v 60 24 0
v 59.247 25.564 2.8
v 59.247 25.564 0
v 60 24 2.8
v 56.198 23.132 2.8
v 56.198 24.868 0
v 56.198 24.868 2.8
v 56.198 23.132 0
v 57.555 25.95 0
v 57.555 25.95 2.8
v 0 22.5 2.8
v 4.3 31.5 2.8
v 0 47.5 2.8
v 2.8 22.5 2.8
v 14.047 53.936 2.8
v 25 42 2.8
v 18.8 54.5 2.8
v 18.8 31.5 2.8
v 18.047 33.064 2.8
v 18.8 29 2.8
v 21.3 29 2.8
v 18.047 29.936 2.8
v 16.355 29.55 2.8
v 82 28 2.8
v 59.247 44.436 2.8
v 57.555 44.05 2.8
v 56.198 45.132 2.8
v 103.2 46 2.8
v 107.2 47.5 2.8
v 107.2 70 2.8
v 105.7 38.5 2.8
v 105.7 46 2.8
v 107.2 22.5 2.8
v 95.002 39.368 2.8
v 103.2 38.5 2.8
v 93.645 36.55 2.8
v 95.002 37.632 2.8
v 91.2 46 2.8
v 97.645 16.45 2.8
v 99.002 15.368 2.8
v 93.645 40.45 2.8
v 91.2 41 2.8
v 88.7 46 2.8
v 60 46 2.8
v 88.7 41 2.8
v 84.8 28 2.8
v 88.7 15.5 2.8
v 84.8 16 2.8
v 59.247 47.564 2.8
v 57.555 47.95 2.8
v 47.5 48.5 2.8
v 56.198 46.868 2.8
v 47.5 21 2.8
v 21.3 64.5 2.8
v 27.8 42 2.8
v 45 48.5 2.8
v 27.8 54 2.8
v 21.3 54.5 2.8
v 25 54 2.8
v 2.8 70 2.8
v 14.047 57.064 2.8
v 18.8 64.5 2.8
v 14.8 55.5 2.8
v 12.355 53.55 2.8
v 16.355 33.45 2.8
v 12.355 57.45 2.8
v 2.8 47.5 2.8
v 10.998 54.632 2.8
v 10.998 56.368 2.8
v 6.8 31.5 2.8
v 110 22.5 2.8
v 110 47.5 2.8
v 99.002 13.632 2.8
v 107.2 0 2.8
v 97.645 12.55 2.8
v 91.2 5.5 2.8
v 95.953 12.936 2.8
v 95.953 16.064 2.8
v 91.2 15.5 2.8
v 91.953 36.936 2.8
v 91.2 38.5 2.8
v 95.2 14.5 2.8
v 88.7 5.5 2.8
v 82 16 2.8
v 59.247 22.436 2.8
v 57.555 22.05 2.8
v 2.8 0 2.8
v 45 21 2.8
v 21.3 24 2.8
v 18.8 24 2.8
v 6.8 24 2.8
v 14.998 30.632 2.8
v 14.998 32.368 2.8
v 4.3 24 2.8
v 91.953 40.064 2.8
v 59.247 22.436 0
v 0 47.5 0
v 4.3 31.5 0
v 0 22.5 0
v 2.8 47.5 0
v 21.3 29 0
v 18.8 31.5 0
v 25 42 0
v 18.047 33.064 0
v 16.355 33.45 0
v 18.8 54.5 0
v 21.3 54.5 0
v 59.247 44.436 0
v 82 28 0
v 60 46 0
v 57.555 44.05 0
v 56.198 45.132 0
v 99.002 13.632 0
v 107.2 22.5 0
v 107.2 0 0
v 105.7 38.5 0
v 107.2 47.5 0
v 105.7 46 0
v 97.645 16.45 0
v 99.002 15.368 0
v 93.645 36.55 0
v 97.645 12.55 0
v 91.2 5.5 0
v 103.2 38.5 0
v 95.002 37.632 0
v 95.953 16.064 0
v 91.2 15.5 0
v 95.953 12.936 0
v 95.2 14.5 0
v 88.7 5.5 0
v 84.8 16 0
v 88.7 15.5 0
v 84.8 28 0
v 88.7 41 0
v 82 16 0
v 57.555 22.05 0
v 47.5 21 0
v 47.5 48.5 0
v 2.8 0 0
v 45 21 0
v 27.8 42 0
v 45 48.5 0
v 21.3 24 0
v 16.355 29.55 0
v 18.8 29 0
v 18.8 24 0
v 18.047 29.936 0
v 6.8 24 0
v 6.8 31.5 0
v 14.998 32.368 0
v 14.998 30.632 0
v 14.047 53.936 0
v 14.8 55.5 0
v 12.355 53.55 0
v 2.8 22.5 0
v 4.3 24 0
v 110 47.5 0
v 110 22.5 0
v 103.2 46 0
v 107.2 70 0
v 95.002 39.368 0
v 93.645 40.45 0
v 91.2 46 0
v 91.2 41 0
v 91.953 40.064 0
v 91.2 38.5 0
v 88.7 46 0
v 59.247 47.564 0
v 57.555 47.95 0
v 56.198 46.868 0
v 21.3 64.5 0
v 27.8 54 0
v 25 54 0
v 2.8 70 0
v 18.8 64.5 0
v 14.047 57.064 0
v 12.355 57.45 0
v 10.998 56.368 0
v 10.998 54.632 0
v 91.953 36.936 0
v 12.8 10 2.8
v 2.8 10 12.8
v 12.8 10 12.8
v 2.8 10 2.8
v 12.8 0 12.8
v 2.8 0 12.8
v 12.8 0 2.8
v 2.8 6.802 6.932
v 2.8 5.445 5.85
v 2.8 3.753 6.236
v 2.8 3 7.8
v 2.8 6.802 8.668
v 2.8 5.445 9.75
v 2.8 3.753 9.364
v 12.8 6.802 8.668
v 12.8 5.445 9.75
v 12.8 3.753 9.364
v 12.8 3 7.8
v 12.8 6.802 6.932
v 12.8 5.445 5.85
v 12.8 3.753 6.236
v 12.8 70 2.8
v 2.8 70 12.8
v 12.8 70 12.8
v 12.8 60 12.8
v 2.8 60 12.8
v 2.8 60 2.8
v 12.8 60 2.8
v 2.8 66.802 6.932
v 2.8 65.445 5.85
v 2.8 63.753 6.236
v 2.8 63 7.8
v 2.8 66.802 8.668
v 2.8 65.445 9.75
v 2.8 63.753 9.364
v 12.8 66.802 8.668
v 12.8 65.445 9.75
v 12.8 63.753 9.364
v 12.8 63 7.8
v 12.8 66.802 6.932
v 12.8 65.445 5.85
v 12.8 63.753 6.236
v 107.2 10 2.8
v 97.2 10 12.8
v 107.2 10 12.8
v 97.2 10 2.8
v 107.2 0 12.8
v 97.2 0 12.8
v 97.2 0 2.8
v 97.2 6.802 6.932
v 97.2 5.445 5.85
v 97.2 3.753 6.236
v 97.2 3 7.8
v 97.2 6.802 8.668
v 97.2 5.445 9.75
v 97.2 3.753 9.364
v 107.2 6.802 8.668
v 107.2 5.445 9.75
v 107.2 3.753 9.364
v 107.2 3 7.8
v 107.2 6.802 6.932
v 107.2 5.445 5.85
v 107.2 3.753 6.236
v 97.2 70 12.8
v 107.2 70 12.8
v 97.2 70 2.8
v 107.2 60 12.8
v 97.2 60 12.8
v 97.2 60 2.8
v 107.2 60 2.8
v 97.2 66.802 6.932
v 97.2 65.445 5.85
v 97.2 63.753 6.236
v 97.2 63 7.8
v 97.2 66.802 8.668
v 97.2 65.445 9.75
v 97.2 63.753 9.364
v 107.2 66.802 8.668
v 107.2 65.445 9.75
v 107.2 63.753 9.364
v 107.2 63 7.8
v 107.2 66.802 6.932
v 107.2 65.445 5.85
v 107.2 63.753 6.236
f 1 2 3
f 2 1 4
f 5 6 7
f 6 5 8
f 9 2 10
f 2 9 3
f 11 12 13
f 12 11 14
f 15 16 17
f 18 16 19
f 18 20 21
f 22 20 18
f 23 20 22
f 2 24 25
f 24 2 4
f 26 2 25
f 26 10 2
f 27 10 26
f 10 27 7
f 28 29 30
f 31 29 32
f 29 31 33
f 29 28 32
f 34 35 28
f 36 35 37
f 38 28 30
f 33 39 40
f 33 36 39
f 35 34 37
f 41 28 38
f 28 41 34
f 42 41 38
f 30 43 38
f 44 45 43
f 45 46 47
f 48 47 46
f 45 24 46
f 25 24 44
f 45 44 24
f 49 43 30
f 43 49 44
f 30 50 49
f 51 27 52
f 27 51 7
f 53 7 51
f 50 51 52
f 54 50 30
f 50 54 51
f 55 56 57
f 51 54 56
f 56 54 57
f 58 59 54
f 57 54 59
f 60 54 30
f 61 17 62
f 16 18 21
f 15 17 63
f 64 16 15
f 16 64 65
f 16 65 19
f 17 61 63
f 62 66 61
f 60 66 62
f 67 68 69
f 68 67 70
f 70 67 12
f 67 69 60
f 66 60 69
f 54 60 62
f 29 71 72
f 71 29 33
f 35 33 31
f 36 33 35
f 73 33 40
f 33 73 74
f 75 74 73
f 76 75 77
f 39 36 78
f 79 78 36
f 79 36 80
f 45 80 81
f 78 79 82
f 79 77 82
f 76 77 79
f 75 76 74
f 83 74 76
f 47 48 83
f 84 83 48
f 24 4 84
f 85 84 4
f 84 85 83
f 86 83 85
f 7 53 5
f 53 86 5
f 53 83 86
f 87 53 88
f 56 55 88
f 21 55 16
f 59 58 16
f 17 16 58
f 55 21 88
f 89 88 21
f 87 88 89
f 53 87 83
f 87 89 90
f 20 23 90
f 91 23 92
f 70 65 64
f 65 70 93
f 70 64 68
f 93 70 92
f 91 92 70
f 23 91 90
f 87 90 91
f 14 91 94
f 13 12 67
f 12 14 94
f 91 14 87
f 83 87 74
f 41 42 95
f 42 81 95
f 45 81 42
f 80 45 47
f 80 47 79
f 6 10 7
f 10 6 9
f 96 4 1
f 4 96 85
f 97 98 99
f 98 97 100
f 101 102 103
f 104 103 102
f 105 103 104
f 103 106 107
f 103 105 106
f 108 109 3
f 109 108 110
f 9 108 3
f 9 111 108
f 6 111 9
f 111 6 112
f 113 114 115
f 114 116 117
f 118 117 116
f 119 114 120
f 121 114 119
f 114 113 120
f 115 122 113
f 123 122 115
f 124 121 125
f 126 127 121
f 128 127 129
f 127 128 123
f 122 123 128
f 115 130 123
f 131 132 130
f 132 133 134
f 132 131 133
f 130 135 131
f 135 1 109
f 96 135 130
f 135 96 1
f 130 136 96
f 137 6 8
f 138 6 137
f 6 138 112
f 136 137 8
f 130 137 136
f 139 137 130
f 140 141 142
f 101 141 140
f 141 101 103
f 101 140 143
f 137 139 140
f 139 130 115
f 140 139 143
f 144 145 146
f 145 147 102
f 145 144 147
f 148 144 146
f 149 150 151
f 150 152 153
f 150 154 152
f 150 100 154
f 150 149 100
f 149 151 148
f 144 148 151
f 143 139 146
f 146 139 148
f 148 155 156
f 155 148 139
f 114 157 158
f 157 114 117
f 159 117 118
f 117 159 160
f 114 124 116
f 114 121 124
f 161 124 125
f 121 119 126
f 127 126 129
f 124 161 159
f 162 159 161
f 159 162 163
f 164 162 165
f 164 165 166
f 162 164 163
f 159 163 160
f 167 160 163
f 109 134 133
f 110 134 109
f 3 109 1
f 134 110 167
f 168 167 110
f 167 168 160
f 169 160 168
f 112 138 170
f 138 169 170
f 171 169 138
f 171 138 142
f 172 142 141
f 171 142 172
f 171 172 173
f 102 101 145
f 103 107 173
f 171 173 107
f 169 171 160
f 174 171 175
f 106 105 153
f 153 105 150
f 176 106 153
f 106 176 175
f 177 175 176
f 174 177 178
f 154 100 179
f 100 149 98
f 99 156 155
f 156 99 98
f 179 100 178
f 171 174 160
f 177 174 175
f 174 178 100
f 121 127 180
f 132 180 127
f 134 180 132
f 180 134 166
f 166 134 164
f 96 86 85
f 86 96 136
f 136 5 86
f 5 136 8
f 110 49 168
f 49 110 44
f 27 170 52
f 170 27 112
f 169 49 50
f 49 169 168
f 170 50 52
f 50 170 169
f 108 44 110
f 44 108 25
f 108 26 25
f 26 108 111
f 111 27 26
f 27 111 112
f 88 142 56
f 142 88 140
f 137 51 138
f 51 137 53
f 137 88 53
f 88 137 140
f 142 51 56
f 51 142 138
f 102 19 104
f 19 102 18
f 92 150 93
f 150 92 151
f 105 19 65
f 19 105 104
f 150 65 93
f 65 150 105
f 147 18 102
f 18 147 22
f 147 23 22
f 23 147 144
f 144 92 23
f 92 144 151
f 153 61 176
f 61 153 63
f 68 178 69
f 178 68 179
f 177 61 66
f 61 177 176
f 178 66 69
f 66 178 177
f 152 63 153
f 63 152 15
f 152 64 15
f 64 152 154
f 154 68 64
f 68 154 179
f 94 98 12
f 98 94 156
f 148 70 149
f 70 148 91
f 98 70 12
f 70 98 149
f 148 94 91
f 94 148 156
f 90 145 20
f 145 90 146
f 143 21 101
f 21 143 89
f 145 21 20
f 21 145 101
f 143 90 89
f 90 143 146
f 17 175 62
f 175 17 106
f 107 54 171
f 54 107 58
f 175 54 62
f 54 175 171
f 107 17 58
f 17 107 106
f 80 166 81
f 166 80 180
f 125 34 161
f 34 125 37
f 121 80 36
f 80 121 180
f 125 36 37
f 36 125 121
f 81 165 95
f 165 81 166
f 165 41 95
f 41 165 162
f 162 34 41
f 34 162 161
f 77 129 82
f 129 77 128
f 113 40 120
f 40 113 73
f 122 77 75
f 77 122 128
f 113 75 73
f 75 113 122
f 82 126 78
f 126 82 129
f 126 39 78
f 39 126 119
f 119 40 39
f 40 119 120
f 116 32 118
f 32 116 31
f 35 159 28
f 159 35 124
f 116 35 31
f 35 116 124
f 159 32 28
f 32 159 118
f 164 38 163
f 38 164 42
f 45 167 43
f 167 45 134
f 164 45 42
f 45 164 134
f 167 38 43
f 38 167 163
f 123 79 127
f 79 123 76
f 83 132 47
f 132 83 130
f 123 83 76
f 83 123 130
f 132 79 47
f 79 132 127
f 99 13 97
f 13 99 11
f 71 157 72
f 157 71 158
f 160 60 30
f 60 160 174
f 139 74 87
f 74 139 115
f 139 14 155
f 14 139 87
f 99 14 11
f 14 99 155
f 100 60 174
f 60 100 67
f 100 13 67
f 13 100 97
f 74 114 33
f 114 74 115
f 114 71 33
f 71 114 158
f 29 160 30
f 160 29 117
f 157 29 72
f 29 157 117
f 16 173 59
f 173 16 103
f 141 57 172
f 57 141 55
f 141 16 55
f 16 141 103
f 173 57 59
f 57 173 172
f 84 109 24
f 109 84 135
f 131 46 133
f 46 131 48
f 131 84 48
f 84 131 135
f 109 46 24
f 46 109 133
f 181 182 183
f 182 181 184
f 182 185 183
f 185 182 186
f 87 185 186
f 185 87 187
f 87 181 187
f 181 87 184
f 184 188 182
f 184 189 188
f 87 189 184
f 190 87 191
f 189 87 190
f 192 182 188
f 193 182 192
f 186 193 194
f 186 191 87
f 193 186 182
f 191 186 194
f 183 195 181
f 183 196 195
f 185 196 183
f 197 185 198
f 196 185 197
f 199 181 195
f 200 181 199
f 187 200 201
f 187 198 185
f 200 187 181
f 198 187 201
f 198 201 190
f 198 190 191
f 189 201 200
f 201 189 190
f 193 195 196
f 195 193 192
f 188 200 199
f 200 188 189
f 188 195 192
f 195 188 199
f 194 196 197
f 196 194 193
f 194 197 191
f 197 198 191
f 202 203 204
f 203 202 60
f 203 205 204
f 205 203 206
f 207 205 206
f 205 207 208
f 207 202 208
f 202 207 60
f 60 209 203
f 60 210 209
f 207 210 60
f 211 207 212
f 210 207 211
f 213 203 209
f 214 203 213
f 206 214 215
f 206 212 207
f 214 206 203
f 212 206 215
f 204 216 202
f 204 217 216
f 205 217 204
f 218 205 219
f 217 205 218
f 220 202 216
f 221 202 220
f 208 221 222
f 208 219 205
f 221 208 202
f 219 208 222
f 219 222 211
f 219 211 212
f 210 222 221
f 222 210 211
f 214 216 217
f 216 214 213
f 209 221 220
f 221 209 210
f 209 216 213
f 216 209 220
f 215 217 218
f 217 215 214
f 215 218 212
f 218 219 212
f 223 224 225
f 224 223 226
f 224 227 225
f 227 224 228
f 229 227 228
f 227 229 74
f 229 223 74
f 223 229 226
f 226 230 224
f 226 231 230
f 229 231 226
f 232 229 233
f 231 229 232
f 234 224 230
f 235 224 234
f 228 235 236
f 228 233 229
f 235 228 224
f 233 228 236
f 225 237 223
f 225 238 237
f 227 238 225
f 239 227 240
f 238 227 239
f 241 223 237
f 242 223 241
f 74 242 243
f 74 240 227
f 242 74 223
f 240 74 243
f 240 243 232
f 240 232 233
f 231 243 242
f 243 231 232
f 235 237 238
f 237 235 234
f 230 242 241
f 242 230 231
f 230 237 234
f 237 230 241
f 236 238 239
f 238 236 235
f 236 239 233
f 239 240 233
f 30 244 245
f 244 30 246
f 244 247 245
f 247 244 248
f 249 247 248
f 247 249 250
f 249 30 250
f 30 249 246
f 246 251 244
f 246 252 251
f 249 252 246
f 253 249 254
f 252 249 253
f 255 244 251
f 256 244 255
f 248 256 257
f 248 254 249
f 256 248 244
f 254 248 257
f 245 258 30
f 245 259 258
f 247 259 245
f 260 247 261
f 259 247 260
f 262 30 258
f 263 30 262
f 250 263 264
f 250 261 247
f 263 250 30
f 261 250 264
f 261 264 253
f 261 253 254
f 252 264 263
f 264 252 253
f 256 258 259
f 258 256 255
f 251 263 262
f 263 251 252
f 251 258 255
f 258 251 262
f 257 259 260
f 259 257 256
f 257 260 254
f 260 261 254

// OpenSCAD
// file: modules.scad
thickness = 3;
ultrasonic_hole_radius = 8.25;
ultrasonic_hole_distance = 25.5;
pin_side = 2.5;



module roundExtract(pos_x, pos_y, radius) {
     translate([pos_x, pos_y,0]) 
		cylinder(h = thickness, r = radius);
 }

module squareExtract(pos_x, pos_y, width, length) {
	translate([pos_x, pos_y,0])
		cube(size = [width, length, thickness]);
}

module ultrasonicExtract(pos_x, pos_y, rotation) {
	translate([pos_x,pos_y,0]){
		rotate([0,0,rotation]) {
			union(){ 
				translate([0,0,0])
					cylinder(h = thickness, r = ultrasonic_hole_radius);
				translate([ultrasonic_hole_distance,0,0])
					cylinder(h = thickness, r = ultrasonic_hole_radius);
				translate([ultrasonic_hole_distance/2-3.75,-9,0])
					cube(size = [7.5, 2, thickness]);
				translate([ultrasonic_hole_distance/2-4.75,6,0])
					cube(size = [10, 4, thickness]);
			}
		}
	}
}

module IMUExtract(pos_x,pos_y, rotation) {
	translate([pos_x,pos_y,0]){
		rotate([0,0,rotation]) {
			union(){ 
				roundExtract(13,3,2);
				roundExtract(13,25,2);
				squareExtract(0,0,pin_side,pin_side*11);
			}
		}
	}
}

module stepperExtraction(pos_x,pos_y, rotation) {
	translate([pos_x,pos_y,0]){
		rotate([0,0,rotation]) {
			union(){ 
				roundExtract(14,9,2);
				roundExtract(10,33,2);
				squareExtract(1.5,1.5,pin_side,pin_side*3);//3 pins
				squareExtract(20-pin_side-1.5,1.5,pin_side,pin_side*2);//2 pin
				squareExtract(20-pin_side-1.5,32,pin_side,pin_side*4);//4 pins
			}
		}
	}

}

module screwAttach(pos_x, pos_y, pos_z, width, length, height, rotation) {
translate([pos_x,pos_y, pos_z]){
		rotate([0,0,rotation]) {
			difference(){ 
				cube(width,length,height);
				translate([width/2, 0,height/2]) {
					rotate([270,0,0]) {
						cylinder(h = 10, r=2);
					}
				}
				
			}
		}
	}


}
// main file
include <modules.scad>;

width = 110;
length = 70;
thickness = 2.8;
plate_fill_width = 22.5;
cable_extract_width = 12;
IMU_width = 16;
IMU_length = 28;
IMU_width_offset = 2;//Offset of the sensor on the PCB

union() {
	difference(){
		cube(size = [width, length, thickness]);
	
		//Corner extract
		squareExtract(0,0, thickness, plate_fill_width);		
		squareExtract(0,length-plate_fill_width,thickness, plate_fill_width);
		squareExtract(width-thickness,0,thickness, plate_fill_width);	
		squareExtract(width-thickness,length-plate_fill_width,thickness, plate_fill_width);	

		//Extracts for the step motor's cable
		squareExtract(25,42, thickness, cable_extract_width);		
		squareExtract(82,16, thickness, cable_extract_width);		

		//Extracts for the sensor board holes
		IMUExtract((width-IMU_width)/2-IMU_width_offset, (length-IMU_length)/2, 0);

		//Extracts for the stepper board holes
		stepperExtraction(thickness,plate_fill_width,0);
		stepperExtraction(width-thickness,length-plate_fill_width,180);		

	}

	screwAttach(thickness, 10, thickness, 10, 10, 10, 270);	
	screwAttach(thickness, 70, thickness, 10, 10, 10, 270);
	screwAttach(width-thickness - 10, 10, thickness, 10, 10, 10, 270);
	screwAttach(width-thickness-10, 70, thickness, 10, 10, 10, 270);
}
